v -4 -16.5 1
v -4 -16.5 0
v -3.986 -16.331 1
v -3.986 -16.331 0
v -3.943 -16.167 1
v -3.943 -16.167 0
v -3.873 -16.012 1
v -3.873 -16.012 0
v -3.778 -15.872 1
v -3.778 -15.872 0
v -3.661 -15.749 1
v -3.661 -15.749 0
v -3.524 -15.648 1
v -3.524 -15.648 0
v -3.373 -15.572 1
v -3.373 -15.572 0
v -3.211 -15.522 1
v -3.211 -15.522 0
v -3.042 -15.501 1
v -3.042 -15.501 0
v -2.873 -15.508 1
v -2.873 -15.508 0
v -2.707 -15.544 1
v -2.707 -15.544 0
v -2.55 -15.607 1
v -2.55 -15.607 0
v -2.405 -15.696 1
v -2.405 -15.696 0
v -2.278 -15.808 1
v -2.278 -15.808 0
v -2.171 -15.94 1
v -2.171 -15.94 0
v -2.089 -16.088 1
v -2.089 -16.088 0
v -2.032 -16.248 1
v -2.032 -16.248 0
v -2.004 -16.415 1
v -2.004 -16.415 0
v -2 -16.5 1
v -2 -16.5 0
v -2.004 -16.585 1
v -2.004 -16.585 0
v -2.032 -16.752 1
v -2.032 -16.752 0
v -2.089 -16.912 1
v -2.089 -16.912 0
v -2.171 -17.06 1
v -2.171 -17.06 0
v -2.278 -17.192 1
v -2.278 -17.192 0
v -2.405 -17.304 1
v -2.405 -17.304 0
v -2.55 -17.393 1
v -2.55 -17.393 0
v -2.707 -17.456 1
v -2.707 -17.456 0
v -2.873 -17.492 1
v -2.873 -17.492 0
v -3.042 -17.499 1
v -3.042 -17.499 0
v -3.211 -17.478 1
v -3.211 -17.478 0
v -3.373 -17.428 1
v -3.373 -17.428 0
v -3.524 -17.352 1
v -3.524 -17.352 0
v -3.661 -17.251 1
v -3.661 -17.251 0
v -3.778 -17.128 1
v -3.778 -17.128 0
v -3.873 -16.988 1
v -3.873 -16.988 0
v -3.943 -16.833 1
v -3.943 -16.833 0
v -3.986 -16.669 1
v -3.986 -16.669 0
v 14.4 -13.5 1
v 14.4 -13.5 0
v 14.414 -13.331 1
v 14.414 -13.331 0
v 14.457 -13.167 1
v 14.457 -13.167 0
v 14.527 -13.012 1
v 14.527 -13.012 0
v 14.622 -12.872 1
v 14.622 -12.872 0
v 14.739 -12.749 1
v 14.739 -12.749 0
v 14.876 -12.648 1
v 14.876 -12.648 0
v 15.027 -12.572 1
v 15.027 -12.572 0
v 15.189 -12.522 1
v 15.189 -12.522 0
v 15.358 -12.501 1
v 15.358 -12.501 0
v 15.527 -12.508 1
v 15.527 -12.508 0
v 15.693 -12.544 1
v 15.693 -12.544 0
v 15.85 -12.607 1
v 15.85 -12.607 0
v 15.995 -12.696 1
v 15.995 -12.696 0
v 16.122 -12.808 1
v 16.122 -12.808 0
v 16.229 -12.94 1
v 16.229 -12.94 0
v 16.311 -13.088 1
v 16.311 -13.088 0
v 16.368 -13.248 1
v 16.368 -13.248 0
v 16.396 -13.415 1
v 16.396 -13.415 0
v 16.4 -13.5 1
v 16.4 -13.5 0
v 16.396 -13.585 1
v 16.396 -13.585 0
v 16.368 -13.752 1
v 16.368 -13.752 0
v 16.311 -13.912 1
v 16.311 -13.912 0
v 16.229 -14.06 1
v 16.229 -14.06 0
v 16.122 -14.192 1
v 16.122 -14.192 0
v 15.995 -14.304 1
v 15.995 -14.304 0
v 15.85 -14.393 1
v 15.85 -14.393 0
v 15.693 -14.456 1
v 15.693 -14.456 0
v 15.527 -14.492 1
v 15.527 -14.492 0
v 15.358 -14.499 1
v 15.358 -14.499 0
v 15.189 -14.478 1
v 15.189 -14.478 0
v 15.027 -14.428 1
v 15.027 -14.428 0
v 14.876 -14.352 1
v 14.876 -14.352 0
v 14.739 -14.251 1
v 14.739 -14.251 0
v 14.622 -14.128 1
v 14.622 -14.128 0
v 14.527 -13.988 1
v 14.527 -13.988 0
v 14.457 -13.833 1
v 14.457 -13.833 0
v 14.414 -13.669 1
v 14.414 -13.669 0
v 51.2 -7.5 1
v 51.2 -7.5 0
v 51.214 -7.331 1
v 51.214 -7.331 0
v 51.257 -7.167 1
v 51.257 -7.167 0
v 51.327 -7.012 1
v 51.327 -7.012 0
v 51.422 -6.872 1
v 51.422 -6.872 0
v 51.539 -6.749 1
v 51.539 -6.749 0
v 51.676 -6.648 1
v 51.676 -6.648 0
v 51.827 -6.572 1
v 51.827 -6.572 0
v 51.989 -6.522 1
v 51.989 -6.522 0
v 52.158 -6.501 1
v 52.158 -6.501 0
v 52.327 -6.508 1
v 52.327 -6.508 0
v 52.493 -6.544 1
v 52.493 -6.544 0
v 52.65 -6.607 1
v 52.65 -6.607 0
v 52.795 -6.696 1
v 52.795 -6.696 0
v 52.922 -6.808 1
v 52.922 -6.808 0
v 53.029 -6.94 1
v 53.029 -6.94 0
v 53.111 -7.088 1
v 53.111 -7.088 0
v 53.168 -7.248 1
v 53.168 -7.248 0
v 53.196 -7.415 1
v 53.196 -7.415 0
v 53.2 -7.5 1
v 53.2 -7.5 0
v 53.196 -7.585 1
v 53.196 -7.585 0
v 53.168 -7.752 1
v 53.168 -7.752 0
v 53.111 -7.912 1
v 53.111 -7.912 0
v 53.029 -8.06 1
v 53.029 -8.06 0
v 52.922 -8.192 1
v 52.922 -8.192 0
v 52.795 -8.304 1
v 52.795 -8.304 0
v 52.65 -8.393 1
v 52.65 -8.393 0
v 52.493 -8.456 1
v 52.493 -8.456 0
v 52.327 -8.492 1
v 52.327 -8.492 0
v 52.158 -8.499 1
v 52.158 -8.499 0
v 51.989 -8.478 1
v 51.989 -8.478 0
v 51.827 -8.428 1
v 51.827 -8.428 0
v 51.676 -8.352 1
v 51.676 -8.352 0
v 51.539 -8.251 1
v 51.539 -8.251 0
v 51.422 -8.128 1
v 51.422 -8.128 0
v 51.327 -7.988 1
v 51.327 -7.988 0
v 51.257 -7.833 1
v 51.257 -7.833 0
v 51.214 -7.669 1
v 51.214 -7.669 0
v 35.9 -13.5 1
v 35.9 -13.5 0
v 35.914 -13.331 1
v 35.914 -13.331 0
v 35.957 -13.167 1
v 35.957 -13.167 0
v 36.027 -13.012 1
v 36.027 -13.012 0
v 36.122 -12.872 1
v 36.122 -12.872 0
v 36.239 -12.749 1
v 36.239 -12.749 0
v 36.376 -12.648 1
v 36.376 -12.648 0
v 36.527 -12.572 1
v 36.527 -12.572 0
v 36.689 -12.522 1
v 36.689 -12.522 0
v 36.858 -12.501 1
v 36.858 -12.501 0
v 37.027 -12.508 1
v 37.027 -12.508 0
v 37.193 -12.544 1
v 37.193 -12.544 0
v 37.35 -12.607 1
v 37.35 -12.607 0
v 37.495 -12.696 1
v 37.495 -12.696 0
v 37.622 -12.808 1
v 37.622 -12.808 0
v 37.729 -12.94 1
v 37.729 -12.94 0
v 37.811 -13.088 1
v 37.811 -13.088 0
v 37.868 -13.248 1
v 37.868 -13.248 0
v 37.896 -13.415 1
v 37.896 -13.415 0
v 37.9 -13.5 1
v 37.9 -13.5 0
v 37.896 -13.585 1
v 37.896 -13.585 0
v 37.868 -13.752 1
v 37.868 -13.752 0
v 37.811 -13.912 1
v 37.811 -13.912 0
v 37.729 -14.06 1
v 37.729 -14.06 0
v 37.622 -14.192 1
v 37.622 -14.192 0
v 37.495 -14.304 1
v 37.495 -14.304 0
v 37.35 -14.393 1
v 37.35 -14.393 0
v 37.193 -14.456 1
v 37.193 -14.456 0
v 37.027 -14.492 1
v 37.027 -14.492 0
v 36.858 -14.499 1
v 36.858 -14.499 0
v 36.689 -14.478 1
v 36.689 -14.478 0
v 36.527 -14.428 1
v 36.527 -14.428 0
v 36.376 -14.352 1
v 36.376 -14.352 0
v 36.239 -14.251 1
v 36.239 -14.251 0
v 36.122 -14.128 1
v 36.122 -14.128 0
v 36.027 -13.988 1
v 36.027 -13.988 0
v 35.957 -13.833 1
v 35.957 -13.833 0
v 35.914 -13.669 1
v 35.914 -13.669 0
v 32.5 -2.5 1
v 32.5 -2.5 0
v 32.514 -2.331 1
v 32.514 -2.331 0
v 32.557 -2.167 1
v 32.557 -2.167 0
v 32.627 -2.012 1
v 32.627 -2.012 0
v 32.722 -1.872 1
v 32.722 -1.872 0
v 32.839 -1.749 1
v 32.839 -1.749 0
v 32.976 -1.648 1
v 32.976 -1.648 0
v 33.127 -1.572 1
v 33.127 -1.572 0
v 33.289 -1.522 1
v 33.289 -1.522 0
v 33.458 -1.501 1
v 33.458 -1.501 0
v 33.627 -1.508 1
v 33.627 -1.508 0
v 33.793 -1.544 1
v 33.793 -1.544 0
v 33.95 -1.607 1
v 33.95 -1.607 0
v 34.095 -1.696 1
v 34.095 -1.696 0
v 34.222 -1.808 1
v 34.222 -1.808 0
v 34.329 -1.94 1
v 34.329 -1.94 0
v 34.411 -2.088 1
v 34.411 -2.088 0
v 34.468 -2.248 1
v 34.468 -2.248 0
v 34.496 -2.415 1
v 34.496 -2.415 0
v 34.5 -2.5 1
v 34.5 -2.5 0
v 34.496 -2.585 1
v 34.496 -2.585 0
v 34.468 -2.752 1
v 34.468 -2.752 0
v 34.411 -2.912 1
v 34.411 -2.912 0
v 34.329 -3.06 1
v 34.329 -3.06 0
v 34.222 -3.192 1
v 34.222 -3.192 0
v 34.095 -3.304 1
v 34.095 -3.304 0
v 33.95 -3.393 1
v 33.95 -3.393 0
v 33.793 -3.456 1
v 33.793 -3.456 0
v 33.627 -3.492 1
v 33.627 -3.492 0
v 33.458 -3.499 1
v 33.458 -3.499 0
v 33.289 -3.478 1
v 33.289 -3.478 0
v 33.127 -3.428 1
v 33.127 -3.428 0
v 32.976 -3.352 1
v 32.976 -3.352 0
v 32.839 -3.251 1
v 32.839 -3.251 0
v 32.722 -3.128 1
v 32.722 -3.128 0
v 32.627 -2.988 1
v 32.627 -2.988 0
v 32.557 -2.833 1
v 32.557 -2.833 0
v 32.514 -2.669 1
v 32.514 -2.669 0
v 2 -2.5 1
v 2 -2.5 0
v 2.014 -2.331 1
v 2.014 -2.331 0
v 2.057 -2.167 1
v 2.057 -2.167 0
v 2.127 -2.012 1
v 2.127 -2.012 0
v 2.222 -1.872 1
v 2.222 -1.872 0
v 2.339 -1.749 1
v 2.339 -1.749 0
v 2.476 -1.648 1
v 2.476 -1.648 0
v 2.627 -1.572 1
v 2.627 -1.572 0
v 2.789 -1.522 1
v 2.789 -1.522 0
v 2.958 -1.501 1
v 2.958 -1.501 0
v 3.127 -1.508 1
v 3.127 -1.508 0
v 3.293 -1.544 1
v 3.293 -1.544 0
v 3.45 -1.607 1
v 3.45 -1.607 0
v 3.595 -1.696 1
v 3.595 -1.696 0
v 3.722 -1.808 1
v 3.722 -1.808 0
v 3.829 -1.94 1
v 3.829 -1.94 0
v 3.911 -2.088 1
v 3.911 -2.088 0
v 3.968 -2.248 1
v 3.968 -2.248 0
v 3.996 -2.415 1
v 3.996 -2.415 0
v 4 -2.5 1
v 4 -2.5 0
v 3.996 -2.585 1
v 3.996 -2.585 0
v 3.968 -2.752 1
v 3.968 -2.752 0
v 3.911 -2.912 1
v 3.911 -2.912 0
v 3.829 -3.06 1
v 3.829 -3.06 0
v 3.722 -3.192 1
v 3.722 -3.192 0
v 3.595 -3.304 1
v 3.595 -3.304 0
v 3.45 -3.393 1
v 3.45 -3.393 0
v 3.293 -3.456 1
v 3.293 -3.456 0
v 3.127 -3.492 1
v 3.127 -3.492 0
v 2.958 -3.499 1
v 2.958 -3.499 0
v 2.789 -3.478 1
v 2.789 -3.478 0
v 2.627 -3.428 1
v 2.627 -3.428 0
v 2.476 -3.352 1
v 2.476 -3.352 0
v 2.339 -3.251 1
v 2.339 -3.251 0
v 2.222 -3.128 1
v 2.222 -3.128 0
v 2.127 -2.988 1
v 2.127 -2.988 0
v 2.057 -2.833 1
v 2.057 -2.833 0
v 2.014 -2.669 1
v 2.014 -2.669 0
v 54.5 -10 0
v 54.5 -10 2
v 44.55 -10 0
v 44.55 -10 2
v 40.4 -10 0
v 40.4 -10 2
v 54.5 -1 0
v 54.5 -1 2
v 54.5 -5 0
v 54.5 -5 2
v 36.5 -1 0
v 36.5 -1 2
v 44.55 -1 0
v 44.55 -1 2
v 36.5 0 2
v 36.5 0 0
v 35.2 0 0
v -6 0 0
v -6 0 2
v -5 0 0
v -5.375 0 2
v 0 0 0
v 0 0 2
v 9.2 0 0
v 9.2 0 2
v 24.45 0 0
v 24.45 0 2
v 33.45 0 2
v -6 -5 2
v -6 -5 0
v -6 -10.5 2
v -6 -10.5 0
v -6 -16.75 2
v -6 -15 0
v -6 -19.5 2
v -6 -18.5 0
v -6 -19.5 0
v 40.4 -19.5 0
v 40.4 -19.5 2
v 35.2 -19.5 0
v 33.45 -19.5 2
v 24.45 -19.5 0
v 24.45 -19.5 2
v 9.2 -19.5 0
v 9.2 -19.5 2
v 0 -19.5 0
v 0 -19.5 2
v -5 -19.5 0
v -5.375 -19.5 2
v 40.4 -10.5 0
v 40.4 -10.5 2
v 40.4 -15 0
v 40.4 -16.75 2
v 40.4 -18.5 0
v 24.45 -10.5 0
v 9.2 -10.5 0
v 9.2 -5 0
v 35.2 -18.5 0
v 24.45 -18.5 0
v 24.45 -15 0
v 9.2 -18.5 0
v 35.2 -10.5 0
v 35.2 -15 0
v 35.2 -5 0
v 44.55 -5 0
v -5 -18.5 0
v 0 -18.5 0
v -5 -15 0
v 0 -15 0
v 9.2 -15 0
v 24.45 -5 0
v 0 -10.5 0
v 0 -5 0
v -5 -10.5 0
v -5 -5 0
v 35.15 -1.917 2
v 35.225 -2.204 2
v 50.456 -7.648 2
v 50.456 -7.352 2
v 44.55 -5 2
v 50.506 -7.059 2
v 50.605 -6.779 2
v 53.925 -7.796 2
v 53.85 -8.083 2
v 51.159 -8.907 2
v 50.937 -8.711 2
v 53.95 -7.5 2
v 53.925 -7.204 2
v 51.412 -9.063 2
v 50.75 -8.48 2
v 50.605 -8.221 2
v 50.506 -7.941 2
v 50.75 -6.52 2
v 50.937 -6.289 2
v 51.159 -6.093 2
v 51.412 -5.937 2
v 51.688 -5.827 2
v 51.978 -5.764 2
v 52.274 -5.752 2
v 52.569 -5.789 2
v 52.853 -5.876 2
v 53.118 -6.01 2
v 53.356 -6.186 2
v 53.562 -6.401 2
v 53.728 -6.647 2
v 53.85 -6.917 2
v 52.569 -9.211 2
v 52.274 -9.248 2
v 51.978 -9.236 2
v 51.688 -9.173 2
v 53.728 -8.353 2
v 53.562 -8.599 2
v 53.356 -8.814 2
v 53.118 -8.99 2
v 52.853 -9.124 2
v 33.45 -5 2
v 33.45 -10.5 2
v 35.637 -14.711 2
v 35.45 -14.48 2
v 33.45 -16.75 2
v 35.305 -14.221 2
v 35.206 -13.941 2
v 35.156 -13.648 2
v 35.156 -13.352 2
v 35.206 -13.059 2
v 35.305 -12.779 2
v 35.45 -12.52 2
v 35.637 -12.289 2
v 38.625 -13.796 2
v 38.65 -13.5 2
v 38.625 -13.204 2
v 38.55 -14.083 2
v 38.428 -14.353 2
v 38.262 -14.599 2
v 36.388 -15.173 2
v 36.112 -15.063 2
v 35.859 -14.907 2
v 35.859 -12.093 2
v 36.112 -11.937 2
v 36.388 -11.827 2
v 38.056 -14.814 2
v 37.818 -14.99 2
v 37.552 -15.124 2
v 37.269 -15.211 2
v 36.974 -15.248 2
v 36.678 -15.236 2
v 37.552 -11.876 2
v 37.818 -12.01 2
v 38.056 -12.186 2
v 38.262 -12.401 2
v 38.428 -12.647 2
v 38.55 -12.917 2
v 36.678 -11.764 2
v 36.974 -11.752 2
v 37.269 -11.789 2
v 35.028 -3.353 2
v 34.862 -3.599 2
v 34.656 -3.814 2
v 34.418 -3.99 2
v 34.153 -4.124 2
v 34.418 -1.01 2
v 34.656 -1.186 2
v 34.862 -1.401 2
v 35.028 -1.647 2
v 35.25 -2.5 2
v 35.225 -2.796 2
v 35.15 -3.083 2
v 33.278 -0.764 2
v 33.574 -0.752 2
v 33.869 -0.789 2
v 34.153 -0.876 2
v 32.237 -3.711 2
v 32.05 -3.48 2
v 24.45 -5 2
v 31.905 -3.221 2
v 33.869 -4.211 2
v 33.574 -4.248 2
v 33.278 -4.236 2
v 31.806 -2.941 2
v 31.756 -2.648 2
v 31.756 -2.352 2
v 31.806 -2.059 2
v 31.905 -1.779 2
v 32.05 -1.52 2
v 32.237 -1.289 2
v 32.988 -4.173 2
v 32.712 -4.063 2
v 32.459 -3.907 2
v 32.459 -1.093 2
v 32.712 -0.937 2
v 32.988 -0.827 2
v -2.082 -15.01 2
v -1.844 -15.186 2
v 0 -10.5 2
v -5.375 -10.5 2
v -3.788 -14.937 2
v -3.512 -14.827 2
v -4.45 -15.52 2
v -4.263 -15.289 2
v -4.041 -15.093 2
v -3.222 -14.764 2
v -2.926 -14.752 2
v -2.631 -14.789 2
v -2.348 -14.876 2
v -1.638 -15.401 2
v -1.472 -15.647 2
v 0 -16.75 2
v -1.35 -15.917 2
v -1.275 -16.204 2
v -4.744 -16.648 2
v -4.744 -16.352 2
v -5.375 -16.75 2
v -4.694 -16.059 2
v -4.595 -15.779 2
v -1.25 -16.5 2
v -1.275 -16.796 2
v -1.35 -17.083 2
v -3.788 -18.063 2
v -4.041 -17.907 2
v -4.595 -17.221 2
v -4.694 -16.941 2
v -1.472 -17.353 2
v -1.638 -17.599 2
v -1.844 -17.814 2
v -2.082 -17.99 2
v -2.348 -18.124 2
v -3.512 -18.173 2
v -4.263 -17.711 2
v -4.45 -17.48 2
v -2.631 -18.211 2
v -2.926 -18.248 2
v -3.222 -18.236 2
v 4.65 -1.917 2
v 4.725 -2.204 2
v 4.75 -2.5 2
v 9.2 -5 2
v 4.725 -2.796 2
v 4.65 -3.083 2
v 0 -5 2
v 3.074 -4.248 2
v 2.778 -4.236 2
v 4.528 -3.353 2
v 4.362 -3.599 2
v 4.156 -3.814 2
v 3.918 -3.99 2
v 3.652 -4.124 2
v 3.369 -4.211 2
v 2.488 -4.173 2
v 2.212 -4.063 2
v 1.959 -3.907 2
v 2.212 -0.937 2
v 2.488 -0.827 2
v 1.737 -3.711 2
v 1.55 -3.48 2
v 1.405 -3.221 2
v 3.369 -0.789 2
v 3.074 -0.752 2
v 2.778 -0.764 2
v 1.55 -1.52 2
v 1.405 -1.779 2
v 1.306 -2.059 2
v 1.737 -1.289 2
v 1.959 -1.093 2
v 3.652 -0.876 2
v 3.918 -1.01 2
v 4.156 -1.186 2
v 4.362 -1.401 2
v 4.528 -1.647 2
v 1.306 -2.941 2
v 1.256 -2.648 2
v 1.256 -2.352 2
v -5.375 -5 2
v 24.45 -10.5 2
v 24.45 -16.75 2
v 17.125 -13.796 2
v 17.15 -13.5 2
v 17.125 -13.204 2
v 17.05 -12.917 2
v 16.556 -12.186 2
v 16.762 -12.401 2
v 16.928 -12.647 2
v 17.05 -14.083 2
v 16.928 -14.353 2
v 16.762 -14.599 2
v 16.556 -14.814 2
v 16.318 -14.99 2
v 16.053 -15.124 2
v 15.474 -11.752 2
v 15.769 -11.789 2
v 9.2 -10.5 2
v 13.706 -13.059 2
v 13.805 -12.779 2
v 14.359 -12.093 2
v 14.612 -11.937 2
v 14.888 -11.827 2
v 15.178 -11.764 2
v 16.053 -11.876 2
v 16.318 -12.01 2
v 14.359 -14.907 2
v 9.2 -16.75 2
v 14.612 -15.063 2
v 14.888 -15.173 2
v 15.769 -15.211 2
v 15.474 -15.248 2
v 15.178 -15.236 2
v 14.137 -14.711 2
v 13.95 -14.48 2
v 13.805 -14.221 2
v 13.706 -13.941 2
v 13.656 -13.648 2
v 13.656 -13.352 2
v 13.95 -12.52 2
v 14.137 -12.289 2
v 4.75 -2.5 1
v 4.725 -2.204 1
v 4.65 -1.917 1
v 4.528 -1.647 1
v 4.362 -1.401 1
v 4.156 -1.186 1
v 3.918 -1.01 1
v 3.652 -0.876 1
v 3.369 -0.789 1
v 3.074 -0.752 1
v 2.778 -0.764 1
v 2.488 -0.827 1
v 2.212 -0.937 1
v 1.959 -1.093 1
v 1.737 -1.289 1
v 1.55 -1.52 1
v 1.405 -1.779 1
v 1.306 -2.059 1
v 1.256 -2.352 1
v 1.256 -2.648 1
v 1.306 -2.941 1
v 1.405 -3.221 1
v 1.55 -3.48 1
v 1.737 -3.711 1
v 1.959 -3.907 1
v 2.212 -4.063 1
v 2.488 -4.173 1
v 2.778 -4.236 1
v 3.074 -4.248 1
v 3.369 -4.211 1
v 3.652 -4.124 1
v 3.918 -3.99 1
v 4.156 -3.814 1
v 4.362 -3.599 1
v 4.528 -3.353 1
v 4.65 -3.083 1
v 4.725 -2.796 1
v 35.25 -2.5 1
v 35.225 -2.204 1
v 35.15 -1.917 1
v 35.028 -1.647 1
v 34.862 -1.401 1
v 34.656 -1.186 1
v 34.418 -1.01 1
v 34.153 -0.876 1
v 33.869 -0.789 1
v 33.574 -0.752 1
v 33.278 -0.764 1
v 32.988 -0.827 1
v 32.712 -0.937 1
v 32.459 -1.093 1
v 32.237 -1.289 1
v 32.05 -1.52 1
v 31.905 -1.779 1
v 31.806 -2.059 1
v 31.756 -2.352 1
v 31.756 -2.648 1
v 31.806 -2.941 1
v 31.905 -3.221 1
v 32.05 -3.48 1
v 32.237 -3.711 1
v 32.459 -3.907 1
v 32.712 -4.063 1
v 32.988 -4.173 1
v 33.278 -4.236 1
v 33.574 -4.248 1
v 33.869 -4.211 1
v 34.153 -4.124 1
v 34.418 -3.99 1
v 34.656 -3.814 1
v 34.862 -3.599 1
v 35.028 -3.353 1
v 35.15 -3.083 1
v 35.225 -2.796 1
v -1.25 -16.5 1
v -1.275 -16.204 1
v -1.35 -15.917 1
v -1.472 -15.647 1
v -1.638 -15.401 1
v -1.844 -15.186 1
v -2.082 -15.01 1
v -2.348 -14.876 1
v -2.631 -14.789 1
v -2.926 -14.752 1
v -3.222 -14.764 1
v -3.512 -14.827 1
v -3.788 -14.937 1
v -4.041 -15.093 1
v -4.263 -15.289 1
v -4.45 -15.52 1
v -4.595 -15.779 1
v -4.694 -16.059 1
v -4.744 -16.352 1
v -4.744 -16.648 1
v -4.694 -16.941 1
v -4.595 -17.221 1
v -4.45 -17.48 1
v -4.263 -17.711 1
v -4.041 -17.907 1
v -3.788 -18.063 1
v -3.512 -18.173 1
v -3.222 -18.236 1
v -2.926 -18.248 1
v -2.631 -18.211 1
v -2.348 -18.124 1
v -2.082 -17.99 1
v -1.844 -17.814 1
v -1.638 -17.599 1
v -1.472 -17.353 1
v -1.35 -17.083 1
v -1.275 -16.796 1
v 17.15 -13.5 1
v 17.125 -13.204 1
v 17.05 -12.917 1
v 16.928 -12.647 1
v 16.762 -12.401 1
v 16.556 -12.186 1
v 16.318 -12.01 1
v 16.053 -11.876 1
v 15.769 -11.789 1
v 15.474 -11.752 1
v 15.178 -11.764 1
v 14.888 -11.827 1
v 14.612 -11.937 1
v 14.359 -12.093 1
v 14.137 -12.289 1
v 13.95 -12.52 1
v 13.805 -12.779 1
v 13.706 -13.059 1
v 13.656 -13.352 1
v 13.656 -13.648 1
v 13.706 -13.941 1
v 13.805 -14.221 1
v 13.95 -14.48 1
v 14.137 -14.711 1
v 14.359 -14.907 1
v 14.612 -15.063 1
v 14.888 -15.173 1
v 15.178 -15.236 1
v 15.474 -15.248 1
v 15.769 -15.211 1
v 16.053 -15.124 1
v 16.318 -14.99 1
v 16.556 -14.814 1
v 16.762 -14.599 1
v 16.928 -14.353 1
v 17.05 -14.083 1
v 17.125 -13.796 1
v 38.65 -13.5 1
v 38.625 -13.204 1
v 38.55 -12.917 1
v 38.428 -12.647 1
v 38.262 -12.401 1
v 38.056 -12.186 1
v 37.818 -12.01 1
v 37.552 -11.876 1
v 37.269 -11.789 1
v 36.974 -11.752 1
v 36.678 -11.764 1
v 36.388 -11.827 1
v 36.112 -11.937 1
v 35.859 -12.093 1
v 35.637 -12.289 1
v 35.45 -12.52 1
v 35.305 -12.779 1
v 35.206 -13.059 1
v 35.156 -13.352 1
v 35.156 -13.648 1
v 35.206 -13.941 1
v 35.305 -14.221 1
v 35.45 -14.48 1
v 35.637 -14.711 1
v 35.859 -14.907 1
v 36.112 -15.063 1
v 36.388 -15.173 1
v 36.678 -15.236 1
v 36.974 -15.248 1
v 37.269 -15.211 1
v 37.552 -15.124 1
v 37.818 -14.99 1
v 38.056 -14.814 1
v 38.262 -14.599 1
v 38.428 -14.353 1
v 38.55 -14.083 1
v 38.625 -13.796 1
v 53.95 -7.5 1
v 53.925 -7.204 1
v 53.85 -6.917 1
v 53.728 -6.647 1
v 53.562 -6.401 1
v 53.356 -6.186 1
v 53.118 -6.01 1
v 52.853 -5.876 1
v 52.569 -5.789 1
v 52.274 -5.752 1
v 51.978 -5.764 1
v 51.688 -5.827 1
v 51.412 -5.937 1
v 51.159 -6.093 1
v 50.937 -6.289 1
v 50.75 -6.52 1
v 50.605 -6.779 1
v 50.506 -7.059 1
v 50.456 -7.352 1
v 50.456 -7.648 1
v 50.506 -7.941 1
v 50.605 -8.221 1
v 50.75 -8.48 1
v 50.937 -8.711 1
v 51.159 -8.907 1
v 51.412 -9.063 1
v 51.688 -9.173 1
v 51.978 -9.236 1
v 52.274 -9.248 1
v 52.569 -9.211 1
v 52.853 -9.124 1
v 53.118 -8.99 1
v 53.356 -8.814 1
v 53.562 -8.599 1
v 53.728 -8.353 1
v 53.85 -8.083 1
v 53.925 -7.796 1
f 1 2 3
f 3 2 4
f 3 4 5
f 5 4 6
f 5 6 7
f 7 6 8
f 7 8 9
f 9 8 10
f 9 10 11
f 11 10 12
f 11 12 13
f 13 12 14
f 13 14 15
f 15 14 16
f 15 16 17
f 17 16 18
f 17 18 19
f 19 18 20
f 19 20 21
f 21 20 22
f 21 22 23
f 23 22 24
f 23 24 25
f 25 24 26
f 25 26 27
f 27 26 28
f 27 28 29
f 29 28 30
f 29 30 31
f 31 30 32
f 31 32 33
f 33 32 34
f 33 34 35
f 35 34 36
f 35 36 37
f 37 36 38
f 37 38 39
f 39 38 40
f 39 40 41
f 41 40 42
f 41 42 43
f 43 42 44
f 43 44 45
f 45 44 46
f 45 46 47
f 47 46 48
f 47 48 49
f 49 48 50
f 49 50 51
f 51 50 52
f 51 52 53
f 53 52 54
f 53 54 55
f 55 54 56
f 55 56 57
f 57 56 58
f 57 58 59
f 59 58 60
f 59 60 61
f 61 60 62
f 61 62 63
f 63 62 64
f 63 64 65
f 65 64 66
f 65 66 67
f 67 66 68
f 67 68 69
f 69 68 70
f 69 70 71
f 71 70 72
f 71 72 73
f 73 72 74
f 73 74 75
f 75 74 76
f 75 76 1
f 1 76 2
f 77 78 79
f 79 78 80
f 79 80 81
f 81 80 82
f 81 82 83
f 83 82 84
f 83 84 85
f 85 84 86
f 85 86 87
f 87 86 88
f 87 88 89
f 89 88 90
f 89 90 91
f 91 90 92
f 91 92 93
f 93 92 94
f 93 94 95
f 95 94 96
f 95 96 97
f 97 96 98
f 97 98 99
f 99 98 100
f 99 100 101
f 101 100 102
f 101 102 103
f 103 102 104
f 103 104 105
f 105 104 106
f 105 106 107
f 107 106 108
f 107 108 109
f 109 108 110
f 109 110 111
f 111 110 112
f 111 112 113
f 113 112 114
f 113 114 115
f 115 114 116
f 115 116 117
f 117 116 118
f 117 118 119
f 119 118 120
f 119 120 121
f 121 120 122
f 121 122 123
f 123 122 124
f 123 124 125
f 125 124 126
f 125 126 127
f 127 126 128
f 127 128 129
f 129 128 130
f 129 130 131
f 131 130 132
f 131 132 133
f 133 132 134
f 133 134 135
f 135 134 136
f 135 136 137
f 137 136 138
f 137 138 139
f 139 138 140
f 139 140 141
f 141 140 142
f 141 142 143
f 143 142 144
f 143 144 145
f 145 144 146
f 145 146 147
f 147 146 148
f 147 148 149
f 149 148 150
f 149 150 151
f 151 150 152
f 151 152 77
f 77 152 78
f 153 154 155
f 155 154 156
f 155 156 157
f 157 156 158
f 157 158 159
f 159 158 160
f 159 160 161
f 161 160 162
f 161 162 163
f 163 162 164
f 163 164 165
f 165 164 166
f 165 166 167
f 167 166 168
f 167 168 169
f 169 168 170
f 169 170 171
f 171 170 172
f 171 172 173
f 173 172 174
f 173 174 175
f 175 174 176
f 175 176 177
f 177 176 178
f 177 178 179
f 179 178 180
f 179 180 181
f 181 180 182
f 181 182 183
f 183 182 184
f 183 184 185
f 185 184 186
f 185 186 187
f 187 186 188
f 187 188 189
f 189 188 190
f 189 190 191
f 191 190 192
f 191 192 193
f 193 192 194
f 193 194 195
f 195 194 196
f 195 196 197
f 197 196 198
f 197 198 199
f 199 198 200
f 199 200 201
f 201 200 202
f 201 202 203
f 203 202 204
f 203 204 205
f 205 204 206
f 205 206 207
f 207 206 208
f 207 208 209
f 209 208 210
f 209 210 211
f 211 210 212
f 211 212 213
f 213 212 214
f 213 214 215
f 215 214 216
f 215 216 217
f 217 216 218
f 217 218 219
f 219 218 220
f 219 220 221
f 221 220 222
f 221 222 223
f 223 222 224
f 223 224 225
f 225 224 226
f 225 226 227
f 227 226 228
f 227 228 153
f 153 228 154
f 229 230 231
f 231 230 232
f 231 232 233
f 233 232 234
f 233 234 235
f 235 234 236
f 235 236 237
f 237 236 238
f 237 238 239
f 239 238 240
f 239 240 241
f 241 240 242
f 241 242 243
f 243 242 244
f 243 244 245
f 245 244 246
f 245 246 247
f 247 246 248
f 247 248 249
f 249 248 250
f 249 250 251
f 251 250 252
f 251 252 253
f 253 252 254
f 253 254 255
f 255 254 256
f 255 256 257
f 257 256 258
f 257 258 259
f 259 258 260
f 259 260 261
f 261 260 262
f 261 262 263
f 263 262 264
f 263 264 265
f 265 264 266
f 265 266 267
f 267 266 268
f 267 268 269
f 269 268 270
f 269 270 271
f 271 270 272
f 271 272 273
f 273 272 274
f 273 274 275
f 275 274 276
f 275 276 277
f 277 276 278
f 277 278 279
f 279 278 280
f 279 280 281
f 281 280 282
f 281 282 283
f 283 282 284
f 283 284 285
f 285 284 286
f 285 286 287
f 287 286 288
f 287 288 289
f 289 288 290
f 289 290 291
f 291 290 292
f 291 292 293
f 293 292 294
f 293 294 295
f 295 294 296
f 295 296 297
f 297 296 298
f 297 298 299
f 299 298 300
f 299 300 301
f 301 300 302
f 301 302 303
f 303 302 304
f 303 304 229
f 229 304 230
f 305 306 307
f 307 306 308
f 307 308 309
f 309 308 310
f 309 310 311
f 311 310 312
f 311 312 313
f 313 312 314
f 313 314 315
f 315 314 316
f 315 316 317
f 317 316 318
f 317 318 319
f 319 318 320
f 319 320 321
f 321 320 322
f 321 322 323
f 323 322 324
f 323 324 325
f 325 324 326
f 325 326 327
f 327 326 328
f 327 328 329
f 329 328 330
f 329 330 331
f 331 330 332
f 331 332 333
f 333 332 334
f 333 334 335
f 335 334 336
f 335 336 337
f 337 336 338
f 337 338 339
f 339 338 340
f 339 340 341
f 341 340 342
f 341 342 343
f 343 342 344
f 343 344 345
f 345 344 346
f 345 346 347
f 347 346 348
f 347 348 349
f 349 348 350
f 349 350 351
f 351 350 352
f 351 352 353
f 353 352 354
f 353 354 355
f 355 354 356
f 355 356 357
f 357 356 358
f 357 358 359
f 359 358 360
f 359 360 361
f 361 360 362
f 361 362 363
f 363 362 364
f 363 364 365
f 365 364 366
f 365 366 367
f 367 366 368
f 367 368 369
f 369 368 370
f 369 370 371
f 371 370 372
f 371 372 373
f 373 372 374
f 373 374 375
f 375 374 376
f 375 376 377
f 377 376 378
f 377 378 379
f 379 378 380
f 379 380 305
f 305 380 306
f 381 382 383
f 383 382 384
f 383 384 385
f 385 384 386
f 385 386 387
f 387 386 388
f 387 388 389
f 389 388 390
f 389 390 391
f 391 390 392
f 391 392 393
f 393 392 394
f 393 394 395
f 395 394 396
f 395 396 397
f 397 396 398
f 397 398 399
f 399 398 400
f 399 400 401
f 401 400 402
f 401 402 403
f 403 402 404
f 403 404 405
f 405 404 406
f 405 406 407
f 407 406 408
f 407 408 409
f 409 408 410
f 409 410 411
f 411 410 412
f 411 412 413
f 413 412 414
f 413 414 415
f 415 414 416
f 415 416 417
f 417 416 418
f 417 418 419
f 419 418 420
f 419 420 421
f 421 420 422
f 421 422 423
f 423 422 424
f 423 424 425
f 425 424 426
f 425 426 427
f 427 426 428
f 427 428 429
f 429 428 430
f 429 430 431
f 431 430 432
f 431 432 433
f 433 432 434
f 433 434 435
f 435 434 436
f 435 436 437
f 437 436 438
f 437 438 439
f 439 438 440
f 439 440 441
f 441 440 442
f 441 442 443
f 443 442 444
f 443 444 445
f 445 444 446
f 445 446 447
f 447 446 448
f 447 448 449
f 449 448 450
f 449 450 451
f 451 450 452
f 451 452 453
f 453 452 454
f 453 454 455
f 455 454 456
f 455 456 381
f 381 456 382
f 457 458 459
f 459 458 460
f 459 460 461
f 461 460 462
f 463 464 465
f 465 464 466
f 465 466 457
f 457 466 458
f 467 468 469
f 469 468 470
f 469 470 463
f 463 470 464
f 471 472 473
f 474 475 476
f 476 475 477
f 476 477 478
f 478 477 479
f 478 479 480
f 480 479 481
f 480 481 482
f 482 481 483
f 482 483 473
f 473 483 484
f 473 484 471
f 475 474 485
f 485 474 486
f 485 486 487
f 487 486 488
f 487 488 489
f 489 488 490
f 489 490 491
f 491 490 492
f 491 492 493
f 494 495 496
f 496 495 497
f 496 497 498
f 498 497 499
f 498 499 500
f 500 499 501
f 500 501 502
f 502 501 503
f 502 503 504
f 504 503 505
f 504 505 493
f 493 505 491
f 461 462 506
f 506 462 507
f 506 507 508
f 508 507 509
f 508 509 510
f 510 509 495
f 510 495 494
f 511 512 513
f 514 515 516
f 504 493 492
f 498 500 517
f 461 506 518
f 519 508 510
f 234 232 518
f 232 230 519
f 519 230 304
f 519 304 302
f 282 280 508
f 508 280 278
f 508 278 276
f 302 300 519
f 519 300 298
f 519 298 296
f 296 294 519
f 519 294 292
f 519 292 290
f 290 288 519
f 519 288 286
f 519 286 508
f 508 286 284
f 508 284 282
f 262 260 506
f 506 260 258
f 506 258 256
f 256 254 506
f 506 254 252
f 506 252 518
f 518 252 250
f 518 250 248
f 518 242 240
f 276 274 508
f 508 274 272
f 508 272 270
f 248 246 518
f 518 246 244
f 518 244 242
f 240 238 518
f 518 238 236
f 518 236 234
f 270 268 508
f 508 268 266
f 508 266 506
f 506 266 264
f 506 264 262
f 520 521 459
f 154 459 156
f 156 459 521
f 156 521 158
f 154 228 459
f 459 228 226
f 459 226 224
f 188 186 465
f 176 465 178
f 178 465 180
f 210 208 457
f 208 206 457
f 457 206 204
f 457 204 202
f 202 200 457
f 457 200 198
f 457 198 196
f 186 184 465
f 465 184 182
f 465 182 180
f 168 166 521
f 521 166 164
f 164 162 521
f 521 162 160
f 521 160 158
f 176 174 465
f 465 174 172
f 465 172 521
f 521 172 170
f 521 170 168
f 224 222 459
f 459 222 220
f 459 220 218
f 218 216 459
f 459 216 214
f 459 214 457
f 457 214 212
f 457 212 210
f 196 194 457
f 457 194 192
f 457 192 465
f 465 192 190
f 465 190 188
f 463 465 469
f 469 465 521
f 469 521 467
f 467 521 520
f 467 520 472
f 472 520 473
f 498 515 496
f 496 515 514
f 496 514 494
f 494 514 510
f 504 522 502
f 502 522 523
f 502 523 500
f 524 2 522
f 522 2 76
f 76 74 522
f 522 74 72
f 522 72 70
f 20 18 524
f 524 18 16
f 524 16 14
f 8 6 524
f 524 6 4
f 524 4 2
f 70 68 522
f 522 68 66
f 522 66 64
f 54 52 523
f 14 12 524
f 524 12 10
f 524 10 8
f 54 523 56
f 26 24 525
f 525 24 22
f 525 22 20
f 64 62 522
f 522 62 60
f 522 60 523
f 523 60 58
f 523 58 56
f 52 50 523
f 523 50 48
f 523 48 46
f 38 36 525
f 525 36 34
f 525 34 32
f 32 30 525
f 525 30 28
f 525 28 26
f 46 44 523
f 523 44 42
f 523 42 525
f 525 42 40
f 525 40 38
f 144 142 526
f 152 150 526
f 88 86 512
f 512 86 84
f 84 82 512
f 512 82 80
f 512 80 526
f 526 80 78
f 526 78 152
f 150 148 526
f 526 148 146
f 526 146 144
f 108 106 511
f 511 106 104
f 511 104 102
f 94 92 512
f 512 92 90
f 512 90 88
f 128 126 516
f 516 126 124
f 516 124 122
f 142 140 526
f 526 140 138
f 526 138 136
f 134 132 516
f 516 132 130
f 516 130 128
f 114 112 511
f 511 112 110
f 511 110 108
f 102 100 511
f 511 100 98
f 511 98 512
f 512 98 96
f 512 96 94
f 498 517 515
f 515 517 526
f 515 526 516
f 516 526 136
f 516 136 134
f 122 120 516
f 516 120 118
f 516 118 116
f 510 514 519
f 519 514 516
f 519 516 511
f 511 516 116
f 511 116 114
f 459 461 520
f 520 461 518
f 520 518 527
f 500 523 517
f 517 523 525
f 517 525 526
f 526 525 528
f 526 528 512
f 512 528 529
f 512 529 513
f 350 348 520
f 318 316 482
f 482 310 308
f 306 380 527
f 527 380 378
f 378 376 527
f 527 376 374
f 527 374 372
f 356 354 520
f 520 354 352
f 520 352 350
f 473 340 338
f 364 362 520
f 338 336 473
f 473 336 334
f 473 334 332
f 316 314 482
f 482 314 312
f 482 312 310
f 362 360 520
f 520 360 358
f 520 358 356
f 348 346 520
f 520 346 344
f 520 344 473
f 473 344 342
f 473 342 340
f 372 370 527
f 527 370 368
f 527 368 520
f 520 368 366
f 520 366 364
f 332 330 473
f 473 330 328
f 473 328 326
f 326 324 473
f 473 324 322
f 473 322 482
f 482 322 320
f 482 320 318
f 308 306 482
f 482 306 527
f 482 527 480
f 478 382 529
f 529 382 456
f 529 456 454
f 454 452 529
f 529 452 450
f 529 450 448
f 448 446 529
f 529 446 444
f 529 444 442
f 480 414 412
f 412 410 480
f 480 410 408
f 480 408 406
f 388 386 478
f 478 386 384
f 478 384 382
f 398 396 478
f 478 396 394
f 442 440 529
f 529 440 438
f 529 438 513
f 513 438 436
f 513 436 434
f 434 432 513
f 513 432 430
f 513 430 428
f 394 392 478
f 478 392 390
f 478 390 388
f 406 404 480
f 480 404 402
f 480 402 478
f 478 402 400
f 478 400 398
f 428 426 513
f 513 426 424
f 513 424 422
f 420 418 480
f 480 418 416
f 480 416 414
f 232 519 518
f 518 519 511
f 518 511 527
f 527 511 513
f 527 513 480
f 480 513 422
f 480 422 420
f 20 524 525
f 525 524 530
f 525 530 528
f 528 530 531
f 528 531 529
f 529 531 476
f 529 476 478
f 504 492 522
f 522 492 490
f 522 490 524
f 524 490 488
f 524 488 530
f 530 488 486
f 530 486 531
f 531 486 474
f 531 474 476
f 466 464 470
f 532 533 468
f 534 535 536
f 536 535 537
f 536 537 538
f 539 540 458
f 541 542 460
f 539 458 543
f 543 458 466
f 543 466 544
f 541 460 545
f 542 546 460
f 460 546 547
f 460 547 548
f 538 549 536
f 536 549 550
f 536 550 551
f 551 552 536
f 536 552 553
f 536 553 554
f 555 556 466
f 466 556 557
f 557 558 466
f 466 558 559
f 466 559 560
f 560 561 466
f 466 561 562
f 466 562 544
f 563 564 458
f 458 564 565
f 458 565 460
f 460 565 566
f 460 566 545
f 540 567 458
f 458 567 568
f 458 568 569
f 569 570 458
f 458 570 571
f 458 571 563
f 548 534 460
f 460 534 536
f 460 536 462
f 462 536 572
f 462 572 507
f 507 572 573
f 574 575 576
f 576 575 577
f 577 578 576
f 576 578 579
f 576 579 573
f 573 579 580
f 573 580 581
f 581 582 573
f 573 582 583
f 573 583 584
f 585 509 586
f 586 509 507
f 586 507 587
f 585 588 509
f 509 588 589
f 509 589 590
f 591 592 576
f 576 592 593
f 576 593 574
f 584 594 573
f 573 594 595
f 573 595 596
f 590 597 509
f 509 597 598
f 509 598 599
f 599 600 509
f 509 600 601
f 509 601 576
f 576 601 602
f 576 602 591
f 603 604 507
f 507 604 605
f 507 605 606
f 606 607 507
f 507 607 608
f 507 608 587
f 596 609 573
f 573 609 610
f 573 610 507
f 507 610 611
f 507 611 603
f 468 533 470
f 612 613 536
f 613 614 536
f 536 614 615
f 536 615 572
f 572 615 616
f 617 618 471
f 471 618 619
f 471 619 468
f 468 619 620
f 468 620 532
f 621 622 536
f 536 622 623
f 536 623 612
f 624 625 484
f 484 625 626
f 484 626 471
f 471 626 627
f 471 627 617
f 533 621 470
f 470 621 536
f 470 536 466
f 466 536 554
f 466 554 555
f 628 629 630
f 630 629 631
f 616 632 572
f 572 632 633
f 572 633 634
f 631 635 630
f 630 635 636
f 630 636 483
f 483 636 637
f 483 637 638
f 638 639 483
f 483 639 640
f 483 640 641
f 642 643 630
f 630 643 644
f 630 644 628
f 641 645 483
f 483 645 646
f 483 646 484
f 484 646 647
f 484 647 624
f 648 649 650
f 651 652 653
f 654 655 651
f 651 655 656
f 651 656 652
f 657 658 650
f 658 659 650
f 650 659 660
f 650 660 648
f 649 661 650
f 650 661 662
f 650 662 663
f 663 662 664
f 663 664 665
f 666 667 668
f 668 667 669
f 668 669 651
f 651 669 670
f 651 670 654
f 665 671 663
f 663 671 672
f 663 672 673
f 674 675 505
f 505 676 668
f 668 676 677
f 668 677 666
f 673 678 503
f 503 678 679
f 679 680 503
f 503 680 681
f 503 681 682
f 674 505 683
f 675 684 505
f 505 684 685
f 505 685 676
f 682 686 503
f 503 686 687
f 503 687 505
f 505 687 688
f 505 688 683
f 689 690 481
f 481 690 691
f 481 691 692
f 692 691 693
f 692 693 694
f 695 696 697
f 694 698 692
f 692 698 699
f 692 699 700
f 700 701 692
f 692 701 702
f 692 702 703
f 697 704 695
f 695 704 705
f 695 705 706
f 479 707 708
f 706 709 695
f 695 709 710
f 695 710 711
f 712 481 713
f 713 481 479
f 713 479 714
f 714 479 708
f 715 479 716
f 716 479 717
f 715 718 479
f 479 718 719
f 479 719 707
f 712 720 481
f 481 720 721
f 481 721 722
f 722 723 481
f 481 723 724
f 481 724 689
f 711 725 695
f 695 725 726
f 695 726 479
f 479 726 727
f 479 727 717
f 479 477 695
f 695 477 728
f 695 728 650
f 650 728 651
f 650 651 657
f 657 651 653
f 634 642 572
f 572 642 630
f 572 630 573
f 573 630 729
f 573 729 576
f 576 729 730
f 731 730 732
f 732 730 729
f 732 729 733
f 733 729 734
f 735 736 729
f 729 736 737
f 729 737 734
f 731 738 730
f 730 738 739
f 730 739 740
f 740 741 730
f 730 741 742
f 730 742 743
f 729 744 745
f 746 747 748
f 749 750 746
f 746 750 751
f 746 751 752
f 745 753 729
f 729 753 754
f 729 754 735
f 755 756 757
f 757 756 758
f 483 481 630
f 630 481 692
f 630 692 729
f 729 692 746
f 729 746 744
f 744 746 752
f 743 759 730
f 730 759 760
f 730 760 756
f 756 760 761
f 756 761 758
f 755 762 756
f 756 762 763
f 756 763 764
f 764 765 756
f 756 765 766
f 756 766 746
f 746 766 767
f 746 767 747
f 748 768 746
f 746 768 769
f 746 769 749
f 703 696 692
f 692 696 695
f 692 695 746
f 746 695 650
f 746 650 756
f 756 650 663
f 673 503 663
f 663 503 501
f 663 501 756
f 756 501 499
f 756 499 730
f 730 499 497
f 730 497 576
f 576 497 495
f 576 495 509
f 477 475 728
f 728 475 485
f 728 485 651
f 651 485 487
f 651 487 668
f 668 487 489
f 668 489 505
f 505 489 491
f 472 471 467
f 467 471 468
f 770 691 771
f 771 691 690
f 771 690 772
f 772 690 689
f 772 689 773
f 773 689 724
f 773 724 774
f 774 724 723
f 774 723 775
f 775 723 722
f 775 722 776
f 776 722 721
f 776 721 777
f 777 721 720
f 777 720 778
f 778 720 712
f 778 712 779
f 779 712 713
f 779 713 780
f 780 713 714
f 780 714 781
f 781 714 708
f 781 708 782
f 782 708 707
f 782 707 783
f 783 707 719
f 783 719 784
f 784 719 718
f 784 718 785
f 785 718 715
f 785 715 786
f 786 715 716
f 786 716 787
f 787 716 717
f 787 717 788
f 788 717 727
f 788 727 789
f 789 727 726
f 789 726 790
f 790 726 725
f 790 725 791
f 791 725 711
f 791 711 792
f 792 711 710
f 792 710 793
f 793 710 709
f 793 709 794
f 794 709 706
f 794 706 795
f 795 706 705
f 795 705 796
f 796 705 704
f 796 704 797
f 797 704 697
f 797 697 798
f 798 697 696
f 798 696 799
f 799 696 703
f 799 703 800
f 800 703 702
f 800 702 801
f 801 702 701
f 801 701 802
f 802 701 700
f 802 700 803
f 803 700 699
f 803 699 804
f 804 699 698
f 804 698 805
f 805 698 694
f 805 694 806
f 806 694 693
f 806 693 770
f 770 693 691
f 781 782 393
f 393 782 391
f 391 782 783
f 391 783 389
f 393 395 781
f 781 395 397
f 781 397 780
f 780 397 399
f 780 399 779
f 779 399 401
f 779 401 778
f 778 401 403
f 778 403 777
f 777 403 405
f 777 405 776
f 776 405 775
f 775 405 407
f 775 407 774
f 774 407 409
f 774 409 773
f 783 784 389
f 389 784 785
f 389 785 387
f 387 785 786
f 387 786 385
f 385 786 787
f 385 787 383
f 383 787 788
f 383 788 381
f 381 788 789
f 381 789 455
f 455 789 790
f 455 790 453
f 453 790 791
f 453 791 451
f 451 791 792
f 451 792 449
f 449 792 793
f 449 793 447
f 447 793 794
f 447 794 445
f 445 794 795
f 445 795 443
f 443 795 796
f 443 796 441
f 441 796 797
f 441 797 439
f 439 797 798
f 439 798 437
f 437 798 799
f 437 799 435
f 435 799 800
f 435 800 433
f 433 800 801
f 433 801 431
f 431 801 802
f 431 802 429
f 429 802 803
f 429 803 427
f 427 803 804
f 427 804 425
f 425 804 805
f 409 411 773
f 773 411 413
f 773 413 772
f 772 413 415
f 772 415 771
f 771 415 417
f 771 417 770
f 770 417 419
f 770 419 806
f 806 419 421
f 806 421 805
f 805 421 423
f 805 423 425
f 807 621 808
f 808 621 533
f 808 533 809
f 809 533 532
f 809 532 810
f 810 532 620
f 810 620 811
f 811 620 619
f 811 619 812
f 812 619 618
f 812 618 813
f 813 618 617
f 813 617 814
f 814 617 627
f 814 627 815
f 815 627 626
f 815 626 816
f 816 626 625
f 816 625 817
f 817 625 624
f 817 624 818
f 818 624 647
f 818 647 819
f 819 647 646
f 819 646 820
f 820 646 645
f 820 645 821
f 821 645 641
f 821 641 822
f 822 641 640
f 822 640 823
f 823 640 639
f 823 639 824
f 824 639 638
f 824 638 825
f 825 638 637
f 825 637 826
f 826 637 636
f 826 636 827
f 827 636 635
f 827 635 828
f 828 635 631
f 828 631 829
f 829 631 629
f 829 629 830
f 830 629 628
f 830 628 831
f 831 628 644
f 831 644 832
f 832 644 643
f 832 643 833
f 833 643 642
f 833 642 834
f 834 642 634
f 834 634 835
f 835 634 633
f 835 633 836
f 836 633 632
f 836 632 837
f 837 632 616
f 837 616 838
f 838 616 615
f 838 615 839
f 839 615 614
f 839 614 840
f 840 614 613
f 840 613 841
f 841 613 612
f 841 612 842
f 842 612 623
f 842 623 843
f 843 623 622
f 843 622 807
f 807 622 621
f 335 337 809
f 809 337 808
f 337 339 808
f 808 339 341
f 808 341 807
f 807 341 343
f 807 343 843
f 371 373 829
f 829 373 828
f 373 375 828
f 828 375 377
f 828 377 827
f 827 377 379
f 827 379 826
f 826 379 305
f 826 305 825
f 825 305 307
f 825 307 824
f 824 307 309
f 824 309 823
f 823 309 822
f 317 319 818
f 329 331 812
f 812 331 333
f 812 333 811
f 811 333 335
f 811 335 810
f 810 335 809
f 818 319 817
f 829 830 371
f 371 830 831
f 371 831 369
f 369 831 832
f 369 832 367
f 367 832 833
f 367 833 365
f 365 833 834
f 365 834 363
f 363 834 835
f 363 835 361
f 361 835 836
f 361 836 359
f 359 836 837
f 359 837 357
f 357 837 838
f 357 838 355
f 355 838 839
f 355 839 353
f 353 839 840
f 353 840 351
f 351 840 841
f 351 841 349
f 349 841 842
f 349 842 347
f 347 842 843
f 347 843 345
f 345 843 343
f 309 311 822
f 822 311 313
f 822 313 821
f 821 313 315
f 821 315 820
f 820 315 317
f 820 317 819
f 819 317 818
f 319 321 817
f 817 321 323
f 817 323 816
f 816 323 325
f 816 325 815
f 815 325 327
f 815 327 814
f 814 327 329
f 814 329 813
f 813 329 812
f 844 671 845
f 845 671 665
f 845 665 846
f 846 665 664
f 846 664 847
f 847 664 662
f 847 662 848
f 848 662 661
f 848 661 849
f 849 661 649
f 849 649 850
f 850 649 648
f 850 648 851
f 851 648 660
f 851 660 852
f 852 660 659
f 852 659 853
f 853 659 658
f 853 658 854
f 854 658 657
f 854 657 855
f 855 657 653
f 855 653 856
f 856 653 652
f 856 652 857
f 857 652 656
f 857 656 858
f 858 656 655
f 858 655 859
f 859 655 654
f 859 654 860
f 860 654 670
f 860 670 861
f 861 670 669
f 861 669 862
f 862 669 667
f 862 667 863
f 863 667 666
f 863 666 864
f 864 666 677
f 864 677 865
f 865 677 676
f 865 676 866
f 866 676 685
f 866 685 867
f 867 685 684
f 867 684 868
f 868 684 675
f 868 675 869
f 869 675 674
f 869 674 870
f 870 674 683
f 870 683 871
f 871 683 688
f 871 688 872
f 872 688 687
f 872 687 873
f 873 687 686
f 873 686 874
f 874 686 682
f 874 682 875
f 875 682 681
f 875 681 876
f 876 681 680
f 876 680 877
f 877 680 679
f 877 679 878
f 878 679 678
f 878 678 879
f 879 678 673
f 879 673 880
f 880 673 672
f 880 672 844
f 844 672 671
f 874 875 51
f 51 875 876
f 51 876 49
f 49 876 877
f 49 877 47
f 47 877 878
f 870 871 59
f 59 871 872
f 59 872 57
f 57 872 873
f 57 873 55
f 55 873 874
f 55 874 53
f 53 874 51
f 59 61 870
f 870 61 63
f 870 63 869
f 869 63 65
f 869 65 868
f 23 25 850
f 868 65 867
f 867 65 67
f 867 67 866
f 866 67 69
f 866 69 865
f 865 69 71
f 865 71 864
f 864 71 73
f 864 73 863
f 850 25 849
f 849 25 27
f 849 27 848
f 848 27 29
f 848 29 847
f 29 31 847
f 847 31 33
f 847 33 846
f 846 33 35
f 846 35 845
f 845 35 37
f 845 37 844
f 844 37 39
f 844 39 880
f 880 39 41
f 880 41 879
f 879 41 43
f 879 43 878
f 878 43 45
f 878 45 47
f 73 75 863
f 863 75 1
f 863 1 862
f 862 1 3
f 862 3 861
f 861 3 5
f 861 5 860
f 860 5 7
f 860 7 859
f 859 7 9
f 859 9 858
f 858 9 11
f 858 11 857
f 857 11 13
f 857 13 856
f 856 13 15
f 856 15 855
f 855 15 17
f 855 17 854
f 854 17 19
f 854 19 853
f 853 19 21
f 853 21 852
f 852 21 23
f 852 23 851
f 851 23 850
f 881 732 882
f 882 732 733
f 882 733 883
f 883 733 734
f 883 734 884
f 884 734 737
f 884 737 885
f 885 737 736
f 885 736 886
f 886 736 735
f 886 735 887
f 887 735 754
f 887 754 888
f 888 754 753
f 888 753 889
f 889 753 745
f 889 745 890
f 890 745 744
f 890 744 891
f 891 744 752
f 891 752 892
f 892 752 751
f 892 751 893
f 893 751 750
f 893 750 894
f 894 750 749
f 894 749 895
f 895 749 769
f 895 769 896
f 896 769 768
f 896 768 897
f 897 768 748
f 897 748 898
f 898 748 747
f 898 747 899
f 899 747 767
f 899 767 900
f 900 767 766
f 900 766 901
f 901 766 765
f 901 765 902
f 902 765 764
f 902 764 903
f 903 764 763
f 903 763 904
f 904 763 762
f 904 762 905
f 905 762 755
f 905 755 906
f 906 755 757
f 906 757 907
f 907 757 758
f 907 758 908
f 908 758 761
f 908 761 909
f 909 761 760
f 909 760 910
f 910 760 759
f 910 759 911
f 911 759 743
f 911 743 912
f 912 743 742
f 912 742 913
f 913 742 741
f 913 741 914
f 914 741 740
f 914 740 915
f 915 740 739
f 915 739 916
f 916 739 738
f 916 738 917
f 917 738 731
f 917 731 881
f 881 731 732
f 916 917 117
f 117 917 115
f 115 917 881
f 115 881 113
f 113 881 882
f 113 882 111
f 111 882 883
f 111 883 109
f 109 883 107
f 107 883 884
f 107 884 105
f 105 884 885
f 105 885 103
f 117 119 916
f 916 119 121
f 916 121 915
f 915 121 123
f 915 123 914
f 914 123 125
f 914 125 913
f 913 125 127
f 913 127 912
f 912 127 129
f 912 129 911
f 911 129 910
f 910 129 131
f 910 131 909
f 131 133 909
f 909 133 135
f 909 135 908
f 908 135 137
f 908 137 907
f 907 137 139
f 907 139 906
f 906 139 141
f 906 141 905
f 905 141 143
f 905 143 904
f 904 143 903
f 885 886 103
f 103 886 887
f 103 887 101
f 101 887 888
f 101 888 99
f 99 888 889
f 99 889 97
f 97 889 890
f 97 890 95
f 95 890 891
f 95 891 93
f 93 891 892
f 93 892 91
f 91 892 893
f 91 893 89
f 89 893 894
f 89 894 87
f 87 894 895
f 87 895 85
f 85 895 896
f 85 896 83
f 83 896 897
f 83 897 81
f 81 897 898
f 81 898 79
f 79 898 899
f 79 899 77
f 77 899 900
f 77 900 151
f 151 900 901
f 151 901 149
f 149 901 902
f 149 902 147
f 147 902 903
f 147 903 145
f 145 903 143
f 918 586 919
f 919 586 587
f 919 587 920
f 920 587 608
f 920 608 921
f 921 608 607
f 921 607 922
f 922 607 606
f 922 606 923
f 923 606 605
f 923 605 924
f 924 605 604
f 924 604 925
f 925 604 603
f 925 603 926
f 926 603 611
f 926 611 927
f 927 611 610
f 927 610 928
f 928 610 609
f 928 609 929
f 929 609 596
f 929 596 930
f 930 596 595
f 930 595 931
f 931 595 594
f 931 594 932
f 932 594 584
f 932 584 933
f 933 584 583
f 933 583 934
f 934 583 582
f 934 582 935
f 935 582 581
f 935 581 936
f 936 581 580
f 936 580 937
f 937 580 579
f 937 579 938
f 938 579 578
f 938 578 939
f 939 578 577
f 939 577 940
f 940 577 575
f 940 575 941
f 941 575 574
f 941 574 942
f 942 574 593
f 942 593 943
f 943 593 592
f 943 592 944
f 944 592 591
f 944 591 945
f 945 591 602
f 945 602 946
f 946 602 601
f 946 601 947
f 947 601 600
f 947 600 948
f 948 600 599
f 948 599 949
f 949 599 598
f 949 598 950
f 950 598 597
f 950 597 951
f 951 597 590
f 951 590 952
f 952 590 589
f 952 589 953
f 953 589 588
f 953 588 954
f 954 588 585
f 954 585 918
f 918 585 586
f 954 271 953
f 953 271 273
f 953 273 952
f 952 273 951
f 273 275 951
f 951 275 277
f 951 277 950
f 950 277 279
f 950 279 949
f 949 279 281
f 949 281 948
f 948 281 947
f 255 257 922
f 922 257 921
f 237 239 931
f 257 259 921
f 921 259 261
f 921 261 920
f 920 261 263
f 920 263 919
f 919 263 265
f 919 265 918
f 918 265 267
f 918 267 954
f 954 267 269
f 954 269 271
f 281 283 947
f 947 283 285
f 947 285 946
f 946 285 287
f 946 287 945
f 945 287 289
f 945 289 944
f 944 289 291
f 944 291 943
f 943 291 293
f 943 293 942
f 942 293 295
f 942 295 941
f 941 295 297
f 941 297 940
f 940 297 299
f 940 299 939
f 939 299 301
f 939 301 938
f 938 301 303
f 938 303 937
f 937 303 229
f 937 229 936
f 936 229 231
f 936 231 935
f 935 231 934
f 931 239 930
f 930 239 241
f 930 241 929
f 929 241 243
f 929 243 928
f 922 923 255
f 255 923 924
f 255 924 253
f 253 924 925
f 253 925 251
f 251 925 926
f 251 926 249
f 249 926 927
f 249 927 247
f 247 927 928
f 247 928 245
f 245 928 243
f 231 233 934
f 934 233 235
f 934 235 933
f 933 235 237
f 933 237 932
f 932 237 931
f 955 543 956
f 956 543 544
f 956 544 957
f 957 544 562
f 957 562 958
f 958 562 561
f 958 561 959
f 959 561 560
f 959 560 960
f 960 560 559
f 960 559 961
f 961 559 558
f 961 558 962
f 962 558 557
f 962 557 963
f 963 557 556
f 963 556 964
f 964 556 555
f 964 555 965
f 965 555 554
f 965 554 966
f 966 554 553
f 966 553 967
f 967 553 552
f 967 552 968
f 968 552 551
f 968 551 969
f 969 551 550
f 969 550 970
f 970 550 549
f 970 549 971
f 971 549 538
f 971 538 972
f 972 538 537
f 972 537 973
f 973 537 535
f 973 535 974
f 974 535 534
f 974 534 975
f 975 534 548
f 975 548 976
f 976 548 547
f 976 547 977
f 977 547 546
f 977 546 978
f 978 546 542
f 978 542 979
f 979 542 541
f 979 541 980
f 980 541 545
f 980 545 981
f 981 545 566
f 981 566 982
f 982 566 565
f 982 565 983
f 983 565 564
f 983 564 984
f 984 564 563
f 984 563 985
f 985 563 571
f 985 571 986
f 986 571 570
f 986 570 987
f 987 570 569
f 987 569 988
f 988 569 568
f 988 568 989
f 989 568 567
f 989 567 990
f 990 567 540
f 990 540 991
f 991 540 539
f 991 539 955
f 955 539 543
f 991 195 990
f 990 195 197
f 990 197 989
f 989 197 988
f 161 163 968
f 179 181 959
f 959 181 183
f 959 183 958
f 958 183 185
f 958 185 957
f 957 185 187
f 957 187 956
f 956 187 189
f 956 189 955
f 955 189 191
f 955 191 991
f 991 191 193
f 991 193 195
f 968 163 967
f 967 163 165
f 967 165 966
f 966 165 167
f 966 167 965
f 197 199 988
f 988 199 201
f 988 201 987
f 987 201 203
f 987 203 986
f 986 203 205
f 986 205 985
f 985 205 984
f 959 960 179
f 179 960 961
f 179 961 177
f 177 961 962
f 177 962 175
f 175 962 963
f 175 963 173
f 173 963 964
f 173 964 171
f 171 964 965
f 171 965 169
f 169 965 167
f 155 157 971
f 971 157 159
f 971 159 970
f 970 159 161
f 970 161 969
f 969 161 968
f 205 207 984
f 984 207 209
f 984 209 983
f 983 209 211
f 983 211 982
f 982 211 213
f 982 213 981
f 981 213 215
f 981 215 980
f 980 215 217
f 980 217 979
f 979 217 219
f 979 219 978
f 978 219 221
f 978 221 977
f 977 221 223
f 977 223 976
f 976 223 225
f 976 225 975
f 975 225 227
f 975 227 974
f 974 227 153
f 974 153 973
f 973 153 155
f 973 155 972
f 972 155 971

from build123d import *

# Parameters (mm, degrees)
SKETCH_1_R          = 1
EXTRUDE_1_DEPTH     = 2
CUT_EXTRUDE_START   = 1
SKETCH_1_8_R        = 1.75
SKETCH_1_8_R_2      = 1
CUT_EXTRUDE_2_DEPTH = 1


with BuildPart() as part:
    # 草图1 → 凸台-拉伸1 (new body)
    with BuildSketch(Plane.XY):
        Polygon((36.5, 0), (-6, 0), (-6, -19.5), (40.4, -19.5), (40.4, -10), (54.5, -10), (54.5, -1), (36.5, -1), align=None)
        with Locations((36.9, -13.5)):
            Circle(SKETCH_1_R, mode=Mode.SUBTRACT)
        with Locations((3, -2.5)):
            Circle(SKETCH_1_R, mode=Mode.SUBTRACT)
        with Locations((33.5, -2.5)):
            Circle(SKETCH_1_R, mode=Mode.SUBTRACT)
        with Locations((-3, -16.5)):
            Circle(SKETCH_1_R, mode=Mode.SUBTRACT)
        with Locations((15.4, -13.5)):
            Circle(SKETCH_1_R, mode=Mode.SUBTRACT)
        with Locations((52.2, -7.5)):
            Circle(SKETCH_1_R, mode=Mode.SUBTRACT)
    extrude(amount=EXTRUDE_1_DEPTH)

    # 草图1<8> → 切除-拉伸2 (cut)
    # profile 1 of 6: a face of its own
    with BuildSketch(Plane.XY.offset(CUT_EXTRUDE_START)):
        with Locations((52.2, -7.5)):
            Circle(SKETCH_1_8_R)
        with Locations((52.2, -7.5)):
            Circle(SKETCH_1_8_R_2, mode=Mode.SUBTRACT)
    # profile 2 of 6: a face of its own
    with BuildSketch(Plane.XY.offset(CUT_EXTRUDE_START)):
        with Locations((3, -2.5)):
            Circle(SKETCH_1_8_R)
    # profile 3 of 6: a face of its own
    with BuildSketch(Plane.XY.offset(CUT_EXTRUDE_START)):
        with Locations((33.5, -2.5)):
            Circle(SKETCH_1_8_R)
    # profile 4 of 6: a face of its own
    with BuildSketch(Plane.XY.offset(CUT_EXTRUDE_START)):
        with Locations((-3, -16.5)):
            Circle(SKETCH_1_8_R)
    # profile 5 of 6: a face of its own
    with BuildSketch(Plane.XY.offset(CUT_EXTRUDE_START)):
        with Locations((15.4, -13.5)):
            Circle(SKETCH_1_8_R)
    # profile 6 of 6: a face of its own
    with BuildSketch(Plane.XY.offset(CUT_EXTRUDE_START)):
        with Locations((36.9, -13.5)):
            Circle(SKETCH_1_8_R)
    extrude(amount=CUT_EXTRUDE_2_DEPTH, mode=Mode.SUBTRACT)


solid = part.part
